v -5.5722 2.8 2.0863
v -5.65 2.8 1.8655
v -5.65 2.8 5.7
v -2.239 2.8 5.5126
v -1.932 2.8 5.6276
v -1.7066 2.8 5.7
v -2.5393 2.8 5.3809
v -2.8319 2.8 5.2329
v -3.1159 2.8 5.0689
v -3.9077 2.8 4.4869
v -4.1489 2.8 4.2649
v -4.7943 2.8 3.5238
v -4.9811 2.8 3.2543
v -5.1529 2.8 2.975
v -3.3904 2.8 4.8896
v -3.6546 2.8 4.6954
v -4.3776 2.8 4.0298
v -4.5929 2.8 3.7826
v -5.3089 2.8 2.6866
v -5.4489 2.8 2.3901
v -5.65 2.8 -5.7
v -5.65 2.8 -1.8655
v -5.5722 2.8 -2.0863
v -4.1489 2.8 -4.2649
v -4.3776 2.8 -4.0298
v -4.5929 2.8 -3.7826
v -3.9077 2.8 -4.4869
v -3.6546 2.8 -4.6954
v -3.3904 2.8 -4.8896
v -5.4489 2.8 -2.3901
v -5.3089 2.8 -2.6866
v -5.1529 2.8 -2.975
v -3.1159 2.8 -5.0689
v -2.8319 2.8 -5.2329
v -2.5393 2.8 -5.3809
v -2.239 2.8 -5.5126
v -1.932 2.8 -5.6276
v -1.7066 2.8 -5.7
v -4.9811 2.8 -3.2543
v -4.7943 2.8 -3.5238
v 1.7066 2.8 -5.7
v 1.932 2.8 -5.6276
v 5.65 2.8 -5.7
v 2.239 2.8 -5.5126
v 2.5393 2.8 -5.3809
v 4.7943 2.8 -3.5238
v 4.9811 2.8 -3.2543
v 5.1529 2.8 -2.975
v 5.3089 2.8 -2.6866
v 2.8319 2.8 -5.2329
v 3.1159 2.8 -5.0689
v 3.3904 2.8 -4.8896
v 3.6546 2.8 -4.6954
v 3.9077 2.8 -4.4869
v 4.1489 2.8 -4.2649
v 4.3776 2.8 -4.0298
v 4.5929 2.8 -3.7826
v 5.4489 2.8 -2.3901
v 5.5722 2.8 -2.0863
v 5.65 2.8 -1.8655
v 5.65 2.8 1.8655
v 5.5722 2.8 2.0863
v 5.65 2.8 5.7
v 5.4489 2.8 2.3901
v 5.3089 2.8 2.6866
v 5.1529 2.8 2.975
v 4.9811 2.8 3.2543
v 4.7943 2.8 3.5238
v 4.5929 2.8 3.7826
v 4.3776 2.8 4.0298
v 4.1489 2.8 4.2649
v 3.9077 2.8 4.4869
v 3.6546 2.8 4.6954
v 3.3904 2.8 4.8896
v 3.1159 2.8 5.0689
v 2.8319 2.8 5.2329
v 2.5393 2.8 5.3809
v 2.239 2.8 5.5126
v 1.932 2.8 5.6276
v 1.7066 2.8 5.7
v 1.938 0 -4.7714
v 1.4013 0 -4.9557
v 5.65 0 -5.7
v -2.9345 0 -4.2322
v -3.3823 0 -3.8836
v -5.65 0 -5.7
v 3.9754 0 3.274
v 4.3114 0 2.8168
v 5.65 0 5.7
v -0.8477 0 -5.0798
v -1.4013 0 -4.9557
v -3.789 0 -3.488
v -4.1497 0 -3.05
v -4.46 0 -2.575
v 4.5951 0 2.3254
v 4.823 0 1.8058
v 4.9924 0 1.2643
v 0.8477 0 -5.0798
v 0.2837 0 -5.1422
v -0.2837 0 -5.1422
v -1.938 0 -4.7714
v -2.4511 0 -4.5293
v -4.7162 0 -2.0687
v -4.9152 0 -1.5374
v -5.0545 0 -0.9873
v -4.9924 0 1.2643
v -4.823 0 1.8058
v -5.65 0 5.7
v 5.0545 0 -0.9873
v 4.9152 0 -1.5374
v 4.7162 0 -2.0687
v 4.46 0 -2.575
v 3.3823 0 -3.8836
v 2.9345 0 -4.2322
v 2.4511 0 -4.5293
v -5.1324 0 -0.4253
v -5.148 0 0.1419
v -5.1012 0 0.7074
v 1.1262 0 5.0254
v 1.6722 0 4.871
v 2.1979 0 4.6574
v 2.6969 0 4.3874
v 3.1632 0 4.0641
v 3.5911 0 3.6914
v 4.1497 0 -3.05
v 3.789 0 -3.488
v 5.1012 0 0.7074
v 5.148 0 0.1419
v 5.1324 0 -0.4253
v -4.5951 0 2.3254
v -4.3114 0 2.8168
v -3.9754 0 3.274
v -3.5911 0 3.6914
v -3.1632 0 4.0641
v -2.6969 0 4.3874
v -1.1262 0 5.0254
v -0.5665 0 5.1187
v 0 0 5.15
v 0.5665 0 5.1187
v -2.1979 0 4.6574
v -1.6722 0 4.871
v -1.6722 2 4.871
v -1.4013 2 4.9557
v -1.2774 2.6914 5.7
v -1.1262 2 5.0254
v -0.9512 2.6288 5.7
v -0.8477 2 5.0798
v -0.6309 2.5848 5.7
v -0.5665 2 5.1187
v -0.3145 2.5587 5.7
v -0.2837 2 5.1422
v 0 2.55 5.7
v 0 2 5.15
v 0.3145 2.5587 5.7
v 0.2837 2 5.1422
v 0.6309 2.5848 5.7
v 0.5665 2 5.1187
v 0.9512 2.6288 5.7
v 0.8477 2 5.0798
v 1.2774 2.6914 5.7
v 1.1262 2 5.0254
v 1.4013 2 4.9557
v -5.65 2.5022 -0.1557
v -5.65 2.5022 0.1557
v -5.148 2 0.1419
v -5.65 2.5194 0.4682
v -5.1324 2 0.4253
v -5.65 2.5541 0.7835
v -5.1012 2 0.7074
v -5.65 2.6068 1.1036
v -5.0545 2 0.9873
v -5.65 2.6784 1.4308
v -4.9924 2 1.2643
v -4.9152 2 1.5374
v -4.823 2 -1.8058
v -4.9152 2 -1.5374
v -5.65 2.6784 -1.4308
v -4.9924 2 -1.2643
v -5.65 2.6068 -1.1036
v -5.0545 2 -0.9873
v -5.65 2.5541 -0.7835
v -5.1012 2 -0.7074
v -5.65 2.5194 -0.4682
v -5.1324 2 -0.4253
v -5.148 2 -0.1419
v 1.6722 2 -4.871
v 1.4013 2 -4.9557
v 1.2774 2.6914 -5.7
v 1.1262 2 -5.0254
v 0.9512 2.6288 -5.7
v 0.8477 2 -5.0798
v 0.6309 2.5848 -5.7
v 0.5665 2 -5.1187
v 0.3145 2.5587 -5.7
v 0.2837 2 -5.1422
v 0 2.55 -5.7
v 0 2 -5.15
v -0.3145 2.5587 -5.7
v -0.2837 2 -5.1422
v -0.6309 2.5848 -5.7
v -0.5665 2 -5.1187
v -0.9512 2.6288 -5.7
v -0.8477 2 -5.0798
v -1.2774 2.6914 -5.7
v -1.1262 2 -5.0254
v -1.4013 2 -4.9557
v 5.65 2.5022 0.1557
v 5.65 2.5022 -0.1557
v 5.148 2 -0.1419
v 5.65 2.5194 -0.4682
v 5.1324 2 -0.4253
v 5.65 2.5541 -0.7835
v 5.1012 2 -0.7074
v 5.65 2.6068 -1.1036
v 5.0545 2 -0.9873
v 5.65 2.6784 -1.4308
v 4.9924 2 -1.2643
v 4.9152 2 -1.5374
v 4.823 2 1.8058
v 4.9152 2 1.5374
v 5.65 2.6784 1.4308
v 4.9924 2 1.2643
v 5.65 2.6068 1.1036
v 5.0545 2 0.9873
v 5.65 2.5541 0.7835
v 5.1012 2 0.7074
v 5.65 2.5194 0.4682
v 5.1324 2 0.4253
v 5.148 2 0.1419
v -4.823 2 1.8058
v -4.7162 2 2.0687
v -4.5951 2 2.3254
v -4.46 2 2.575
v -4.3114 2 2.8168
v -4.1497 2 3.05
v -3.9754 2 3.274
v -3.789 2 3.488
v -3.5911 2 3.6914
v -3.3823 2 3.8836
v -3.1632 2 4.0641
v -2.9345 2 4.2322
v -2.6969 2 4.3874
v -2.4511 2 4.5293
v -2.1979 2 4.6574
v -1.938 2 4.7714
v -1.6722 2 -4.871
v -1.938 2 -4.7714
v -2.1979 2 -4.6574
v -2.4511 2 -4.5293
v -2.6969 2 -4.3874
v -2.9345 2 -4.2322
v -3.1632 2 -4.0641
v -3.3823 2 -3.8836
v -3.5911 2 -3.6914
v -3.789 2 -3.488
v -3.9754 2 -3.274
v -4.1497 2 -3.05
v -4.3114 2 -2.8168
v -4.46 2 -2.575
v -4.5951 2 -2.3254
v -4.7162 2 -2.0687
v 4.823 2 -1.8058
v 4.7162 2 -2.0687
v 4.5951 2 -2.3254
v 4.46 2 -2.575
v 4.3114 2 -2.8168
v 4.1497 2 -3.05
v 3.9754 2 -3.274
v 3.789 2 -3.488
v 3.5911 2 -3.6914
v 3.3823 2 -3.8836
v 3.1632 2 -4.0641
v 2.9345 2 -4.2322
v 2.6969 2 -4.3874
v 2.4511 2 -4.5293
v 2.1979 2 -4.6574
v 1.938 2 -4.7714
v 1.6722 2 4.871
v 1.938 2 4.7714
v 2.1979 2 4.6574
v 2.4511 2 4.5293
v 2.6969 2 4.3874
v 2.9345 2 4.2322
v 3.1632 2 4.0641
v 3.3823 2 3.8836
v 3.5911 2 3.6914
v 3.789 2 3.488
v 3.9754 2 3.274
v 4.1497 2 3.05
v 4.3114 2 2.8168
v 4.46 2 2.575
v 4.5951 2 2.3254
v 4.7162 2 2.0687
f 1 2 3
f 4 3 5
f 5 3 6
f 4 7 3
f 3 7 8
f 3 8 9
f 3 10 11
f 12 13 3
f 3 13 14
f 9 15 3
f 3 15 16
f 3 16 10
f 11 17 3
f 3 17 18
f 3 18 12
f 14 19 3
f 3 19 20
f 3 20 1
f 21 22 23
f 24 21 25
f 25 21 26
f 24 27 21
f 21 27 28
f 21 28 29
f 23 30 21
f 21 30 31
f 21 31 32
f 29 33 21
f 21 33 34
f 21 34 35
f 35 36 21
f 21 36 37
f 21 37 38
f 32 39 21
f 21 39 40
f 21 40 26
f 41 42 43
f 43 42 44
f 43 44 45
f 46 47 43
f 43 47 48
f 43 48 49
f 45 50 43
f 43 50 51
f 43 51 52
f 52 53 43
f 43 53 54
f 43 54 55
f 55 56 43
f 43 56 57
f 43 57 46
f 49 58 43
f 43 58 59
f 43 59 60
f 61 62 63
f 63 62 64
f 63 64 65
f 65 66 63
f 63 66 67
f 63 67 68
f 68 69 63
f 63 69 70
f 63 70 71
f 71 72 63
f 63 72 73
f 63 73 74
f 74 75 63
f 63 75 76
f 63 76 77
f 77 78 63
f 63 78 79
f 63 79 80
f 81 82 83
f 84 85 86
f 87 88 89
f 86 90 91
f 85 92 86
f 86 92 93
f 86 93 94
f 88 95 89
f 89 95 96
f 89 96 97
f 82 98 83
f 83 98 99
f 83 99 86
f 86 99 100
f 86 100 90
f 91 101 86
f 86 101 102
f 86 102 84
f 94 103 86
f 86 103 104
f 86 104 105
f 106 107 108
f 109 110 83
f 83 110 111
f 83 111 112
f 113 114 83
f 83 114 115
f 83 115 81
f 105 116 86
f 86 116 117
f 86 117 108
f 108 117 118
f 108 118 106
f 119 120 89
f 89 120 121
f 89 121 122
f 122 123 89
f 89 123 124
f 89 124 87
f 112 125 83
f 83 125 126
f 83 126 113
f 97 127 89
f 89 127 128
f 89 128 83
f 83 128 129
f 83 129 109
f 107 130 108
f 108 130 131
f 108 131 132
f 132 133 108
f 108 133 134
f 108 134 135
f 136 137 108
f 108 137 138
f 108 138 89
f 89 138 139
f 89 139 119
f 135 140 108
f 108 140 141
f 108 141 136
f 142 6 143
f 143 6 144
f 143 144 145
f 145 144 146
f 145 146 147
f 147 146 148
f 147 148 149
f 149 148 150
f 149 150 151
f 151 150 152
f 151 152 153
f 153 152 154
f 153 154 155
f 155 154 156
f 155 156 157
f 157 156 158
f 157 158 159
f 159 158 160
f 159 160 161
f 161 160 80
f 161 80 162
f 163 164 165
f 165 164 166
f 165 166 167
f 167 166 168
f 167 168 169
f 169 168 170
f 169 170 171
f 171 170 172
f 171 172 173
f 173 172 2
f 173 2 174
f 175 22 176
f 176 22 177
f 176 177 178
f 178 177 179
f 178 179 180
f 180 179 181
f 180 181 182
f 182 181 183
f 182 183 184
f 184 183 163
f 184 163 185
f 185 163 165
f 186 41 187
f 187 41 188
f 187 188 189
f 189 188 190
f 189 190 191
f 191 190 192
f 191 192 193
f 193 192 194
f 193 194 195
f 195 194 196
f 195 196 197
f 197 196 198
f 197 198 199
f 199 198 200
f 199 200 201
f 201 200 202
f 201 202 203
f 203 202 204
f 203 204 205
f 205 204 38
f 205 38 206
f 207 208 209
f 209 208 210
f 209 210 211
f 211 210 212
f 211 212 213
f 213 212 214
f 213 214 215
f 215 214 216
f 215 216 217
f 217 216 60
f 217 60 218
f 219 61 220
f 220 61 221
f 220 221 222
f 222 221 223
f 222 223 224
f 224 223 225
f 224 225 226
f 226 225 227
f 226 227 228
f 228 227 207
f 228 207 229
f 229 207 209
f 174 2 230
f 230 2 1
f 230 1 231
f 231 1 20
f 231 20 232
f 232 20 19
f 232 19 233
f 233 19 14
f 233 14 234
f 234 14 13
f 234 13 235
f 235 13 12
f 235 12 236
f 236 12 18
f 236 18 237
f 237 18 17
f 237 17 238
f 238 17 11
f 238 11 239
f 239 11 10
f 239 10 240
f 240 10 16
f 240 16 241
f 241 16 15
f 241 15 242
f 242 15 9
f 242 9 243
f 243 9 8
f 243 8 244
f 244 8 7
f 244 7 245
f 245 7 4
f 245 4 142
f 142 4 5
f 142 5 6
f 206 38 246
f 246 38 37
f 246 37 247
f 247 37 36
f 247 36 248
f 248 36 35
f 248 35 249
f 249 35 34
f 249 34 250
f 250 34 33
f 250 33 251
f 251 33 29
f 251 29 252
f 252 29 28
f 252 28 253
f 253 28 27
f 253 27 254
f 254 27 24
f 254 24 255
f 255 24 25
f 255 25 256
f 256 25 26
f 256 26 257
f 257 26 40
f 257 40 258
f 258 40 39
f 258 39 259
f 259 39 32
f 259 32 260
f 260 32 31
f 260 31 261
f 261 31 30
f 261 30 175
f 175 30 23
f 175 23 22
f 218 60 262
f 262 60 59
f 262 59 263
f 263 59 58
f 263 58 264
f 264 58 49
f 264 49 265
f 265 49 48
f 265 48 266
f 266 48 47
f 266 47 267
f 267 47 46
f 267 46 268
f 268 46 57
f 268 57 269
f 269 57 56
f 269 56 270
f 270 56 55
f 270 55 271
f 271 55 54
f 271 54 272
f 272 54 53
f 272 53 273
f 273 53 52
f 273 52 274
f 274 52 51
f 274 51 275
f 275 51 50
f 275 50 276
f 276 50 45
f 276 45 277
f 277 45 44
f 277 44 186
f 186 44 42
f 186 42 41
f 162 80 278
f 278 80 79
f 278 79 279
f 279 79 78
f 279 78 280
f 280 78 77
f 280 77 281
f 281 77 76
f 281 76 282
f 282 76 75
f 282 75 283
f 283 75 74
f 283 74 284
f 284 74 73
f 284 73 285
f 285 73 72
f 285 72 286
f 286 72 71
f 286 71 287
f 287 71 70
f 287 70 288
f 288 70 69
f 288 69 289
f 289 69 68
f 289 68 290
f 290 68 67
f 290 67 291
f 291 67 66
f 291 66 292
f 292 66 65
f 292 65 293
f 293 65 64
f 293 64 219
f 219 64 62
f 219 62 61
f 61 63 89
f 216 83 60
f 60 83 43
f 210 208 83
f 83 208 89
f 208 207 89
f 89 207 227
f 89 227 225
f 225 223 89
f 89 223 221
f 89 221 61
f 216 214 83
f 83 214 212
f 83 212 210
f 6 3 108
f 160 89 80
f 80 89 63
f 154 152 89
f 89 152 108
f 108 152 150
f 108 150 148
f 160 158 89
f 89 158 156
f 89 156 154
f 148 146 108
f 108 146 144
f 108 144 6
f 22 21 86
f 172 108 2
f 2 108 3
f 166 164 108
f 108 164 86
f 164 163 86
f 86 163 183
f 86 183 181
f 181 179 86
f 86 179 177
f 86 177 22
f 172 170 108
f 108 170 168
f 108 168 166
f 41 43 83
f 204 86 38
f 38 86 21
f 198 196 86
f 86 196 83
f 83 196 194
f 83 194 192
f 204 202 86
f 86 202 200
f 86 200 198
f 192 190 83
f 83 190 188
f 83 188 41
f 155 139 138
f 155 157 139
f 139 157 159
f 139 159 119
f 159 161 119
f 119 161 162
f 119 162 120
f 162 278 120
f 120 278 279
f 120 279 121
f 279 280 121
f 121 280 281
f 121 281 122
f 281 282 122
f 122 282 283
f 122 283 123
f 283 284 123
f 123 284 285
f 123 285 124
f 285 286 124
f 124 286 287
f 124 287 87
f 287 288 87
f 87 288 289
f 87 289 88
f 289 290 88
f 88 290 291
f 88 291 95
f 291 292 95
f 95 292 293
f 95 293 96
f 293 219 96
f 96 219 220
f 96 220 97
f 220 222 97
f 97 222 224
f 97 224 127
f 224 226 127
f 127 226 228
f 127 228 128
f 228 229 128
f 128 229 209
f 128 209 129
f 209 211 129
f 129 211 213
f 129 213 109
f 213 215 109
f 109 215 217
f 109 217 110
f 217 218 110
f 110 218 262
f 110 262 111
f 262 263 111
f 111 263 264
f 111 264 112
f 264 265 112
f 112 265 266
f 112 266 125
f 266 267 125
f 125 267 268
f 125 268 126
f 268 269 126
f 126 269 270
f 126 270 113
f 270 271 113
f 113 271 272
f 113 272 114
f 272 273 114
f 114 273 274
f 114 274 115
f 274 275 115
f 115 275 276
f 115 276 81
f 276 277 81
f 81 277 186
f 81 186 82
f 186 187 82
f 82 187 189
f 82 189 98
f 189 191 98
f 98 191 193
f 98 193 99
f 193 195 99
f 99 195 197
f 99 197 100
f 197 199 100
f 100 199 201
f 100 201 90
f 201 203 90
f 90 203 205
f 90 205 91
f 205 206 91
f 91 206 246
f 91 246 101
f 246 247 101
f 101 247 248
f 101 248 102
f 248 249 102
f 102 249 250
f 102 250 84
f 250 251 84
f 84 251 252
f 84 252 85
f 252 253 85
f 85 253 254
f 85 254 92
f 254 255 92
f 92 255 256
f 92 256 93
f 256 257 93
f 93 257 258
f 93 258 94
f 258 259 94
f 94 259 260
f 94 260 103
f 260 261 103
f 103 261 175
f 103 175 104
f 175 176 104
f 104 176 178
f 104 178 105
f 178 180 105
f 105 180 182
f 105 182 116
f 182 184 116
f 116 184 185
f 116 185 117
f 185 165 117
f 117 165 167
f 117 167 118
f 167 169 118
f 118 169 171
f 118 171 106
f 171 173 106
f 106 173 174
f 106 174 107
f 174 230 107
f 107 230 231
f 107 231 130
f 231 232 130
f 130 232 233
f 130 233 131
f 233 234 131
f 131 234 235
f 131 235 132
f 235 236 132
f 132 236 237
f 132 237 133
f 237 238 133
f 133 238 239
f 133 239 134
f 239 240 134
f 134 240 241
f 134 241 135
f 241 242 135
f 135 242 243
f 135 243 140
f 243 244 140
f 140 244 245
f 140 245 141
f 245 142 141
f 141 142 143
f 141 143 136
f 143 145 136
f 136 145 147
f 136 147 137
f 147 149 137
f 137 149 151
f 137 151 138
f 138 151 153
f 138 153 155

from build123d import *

# Parameters (mm, degrees)
SKETCH_1_W          = 11.9
SKETCH_1_H          = 11.9
SKETCH_1_R          = 5.05
EXTRUDE_1_DEPTH     = 2.8
CHAMFER_1_SIZE      = 0.9
SKETCH1_OUTSIDE_W   = 17.312
SKETCH1_OUTSIDE_H   = 17.312
SKETCH1_OUTSIDE_W_2 = 11.3
SKETCH1_OUTSIDE_H_2 = 11.4
CUT_EXTRUDE1_DEPTH  = 9.868201622
SKETCH2_R           = 5.15
CUT_EXTRUDE2_DEPTH  = 9.500147058


with BuildPart() as part:
    # 草图1 → 凸台-拉伸1 (new body)
    with BuildSketch(Plane(origin=(0, 0, 0), x_dir=(1, 0, 0), z_dir=(0, 1, 0))):
        Rectangle(SKETCH_1_W, SKETCH_1_H)
        with Locations(Location((0, 0, 0), (0, 0, 270))):
            Circle(SKETCH_1_R, mode=Mode.SUBTRACT)
    extrude(amount=EXTRUDE_1_DEPTH)

    # 倒角1
    chamfer_1_edges = [part.edges().sort_by_distance(p)[0] for p in [
        (0, 2.8, -5.05),
    ]]
    chamfer(chamfer_1_edges, length=CHAMFER_1_SIZE - 0.0001)  # a hair under: the kernel refuses the full size

    # Sketch1 outside → Cut-Extrude1 (cut, through all)
    with BuildSketch(Plane(origin=(0, 2.8, 0), x_dir=(1, 0, 0), z_dir=(0, 1, 0))):
        Rectangle(SKETCH1_OUTSIDE_W, SKETCH1_OUTSIDE_H)
        Rectangle(SKETCH1_OUTSIDE_W_2, SKETCH1_OUTSIDE_H_2, mode=Mode.SUBTRACT)
    extrude(amount=-CUT_EXTRUDE1_DEPTH, mode=Mode.SUBTRACT)

    # Sketch2 → Cut-Extrude2 (cut, through all)
    with BuildSketch(Plane(origin=(0, 2.8, 0), x_dir=(1, 0, 0), z_dir=(0, 1, 0))):
        with Locations(Location((0, 0, 0), (0, 0, 270))):
            Circle(SKETCH2_R)
    extrude(amount=-CUT_EXTRUDE2_DEPTH, mode=Mode.SUBTRACT)


solid = part.part
